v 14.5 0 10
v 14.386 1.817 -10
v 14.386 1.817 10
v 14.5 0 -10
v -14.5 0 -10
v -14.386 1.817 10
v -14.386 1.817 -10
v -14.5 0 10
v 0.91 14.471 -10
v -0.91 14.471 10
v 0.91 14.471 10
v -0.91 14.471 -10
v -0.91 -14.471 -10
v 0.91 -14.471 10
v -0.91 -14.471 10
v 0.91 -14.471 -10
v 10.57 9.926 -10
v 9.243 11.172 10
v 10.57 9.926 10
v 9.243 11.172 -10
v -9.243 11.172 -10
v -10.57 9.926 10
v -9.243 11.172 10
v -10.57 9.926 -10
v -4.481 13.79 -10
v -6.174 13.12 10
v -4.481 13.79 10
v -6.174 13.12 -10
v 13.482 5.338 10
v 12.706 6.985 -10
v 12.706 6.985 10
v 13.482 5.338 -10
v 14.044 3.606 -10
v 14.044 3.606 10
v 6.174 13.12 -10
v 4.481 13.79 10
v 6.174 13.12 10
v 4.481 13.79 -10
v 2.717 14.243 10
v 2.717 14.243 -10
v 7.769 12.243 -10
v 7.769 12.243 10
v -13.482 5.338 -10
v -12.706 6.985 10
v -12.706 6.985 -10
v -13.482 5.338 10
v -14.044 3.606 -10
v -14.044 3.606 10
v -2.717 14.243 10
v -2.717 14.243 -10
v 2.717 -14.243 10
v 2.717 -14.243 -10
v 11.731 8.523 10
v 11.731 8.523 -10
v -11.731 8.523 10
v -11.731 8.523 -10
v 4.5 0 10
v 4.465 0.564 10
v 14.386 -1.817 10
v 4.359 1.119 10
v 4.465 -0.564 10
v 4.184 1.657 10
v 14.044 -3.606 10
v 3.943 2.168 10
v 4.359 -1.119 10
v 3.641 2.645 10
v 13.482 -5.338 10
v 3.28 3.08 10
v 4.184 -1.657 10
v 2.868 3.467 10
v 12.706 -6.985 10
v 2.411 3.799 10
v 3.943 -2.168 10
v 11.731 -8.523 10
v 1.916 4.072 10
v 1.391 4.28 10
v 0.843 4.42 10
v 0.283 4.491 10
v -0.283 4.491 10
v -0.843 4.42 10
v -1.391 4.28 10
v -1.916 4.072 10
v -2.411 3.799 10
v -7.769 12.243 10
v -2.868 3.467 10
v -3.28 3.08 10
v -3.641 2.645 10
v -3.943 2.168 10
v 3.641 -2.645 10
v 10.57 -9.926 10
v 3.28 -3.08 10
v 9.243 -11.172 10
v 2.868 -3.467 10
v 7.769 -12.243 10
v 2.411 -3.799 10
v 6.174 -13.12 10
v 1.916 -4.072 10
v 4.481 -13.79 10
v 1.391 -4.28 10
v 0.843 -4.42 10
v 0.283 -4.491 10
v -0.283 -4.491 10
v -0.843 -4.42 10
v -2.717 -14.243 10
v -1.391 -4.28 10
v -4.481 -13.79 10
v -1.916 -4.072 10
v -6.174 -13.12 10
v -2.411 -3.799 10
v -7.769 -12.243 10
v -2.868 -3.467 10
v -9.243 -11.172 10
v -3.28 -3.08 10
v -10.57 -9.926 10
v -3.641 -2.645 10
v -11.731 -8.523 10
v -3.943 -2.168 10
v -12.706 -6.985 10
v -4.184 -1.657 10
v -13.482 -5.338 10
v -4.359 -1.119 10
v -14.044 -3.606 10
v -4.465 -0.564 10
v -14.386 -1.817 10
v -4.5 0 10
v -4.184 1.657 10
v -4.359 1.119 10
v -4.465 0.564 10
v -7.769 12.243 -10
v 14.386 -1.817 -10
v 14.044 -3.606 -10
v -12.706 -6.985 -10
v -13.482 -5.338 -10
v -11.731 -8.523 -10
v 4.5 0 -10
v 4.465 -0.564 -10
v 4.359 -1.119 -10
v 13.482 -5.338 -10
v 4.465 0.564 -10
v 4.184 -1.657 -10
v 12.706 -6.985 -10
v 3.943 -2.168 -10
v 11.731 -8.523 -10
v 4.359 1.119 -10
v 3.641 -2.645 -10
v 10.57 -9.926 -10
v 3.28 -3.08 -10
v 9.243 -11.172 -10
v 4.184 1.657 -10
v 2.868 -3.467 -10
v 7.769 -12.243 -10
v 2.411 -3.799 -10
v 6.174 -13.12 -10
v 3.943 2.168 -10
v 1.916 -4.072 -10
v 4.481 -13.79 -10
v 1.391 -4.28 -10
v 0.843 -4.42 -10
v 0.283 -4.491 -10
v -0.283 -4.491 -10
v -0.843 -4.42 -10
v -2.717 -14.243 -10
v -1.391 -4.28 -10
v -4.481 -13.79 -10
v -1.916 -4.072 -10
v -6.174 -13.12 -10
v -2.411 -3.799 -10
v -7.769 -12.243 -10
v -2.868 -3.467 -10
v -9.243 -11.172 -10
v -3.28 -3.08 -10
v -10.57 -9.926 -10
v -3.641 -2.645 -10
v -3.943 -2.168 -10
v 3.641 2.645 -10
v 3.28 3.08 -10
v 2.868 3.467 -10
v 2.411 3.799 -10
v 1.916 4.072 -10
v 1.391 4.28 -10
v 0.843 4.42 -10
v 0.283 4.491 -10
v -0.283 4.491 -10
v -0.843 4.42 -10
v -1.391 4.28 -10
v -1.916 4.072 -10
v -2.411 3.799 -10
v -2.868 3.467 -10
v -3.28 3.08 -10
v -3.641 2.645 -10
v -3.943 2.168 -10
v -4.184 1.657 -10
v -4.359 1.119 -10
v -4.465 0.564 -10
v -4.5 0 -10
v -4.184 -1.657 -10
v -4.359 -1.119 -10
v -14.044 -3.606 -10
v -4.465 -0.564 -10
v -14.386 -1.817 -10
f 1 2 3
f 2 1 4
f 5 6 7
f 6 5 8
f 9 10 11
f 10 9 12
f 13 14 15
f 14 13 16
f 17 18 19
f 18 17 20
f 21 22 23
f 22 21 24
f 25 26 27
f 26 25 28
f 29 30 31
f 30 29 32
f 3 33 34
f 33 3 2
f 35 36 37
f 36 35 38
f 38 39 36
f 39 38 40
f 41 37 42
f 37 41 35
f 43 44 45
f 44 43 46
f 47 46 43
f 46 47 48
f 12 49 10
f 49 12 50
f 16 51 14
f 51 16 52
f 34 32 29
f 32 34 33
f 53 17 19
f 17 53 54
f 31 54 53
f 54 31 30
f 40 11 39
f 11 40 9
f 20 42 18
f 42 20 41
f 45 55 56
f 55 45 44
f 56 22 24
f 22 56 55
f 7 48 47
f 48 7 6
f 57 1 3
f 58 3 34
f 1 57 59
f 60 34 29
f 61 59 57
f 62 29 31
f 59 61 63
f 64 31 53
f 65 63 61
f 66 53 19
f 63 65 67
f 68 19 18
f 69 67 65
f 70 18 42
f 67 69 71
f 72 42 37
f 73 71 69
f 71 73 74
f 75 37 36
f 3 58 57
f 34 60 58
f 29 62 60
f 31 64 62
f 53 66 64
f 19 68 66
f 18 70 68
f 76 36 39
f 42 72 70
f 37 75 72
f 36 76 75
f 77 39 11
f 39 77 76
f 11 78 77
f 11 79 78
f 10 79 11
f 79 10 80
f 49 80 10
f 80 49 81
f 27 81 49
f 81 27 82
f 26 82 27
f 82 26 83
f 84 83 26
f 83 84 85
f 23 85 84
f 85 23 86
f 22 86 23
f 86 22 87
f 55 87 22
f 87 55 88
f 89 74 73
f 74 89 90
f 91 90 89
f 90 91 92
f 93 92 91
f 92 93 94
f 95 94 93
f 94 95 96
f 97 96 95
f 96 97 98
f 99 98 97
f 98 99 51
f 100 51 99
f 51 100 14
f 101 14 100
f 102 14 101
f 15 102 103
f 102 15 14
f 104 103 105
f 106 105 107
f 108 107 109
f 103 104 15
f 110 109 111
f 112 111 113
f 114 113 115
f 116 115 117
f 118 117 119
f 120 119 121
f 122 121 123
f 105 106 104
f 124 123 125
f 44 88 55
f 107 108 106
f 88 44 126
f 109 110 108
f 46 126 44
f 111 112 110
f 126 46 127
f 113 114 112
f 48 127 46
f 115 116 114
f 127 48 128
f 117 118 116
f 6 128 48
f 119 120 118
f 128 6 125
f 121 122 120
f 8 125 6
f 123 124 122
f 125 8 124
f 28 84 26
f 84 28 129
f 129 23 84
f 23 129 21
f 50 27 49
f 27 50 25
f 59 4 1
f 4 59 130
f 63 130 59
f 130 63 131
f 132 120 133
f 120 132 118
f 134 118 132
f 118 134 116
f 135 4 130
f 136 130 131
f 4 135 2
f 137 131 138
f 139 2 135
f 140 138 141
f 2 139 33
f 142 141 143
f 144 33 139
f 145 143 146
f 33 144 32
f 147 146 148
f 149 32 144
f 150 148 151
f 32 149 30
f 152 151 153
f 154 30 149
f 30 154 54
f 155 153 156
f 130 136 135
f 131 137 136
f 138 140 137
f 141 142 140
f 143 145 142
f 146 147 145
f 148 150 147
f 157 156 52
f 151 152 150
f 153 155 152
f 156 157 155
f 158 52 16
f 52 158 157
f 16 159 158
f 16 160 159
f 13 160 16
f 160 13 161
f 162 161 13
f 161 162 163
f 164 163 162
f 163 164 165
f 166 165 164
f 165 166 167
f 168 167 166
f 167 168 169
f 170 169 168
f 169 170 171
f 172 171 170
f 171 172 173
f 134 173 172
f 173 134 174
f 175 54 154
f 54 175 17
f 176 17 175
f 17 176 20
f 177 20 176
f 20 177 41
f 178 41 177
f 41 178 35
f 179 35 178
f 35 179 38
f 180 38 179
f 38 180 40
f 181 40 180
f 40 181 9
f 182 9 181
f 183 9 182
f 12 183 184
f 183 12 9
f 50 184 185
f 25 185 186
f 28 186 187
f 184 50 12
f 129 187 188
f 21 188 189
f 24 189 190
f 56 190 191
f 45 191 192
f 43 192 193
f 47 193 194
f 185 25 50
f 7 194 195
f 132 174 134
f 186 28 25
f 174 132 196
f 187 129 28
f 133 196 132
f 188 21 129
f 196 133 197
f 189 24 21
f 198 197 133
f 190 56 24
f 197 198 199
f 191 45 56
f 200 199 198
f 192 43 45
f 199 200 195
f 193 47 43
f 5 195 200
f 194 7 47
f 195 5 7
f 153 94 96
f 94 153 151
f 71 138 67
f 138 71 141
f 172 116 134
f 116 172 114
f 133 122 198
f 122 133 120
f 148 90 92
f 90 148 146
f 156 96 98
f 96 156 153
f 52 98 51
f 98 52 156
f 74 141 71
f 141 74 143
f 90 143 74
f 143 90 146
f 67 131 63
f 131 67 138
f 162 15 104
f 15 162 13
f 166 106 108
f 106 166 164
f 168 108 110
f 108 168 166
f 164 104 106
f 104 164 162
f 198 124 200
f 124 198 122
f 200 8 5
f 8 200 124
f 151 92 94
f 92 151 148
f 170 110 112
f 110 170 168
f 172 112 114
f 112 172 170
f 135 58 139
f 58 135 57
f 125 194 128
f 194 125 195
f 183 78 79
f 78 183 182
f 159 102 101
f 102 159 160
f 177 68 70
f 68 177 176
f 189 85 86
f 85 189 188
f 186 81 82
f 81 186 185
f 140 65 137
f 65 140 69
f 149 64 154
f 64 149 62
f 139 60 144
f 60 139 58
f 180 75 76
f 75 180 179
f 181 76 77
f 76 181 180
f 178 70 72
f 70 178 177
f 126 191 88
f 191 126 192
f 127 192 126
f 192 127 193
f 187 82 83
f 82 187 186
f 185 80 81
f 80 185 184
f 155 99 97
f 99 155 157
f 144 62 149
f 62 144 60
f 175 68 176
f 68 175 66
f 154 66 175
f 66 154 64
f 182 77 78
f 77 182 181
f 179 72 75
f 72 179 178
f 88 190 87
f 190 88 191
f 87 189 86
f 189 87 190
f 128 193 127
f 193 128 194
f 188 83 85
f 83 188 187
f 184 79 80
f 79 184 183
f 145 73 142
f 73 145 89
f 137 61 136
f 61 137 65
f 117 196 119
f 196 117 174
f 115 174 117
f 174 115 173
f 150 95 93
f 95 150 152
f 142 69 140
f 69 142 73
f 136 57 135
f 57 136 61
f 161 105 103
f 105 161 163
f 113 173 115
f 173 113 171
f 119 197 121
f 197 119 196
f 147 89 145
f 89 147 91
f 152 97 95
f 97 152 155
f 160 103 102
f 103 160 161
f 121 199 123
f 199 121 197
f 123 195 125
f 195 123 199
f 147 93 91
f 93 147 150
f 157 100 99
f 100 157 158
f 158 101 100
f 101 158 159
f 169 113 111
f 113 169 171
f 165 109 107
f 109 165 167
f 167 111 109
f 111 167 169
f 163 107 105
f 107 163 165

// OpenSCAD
$fn = 50;


difference() {
	union() {
		translate(v = [0, 0, -10.0000000000]) {
			cylinder(h = 20, r = 14.5000000000);
		}
	}
	union() {
		translate(v = [0, 0, -100.0000000000]) {
			cylinder(h = 200, r = 4.5000000000);
		}
	}
}
